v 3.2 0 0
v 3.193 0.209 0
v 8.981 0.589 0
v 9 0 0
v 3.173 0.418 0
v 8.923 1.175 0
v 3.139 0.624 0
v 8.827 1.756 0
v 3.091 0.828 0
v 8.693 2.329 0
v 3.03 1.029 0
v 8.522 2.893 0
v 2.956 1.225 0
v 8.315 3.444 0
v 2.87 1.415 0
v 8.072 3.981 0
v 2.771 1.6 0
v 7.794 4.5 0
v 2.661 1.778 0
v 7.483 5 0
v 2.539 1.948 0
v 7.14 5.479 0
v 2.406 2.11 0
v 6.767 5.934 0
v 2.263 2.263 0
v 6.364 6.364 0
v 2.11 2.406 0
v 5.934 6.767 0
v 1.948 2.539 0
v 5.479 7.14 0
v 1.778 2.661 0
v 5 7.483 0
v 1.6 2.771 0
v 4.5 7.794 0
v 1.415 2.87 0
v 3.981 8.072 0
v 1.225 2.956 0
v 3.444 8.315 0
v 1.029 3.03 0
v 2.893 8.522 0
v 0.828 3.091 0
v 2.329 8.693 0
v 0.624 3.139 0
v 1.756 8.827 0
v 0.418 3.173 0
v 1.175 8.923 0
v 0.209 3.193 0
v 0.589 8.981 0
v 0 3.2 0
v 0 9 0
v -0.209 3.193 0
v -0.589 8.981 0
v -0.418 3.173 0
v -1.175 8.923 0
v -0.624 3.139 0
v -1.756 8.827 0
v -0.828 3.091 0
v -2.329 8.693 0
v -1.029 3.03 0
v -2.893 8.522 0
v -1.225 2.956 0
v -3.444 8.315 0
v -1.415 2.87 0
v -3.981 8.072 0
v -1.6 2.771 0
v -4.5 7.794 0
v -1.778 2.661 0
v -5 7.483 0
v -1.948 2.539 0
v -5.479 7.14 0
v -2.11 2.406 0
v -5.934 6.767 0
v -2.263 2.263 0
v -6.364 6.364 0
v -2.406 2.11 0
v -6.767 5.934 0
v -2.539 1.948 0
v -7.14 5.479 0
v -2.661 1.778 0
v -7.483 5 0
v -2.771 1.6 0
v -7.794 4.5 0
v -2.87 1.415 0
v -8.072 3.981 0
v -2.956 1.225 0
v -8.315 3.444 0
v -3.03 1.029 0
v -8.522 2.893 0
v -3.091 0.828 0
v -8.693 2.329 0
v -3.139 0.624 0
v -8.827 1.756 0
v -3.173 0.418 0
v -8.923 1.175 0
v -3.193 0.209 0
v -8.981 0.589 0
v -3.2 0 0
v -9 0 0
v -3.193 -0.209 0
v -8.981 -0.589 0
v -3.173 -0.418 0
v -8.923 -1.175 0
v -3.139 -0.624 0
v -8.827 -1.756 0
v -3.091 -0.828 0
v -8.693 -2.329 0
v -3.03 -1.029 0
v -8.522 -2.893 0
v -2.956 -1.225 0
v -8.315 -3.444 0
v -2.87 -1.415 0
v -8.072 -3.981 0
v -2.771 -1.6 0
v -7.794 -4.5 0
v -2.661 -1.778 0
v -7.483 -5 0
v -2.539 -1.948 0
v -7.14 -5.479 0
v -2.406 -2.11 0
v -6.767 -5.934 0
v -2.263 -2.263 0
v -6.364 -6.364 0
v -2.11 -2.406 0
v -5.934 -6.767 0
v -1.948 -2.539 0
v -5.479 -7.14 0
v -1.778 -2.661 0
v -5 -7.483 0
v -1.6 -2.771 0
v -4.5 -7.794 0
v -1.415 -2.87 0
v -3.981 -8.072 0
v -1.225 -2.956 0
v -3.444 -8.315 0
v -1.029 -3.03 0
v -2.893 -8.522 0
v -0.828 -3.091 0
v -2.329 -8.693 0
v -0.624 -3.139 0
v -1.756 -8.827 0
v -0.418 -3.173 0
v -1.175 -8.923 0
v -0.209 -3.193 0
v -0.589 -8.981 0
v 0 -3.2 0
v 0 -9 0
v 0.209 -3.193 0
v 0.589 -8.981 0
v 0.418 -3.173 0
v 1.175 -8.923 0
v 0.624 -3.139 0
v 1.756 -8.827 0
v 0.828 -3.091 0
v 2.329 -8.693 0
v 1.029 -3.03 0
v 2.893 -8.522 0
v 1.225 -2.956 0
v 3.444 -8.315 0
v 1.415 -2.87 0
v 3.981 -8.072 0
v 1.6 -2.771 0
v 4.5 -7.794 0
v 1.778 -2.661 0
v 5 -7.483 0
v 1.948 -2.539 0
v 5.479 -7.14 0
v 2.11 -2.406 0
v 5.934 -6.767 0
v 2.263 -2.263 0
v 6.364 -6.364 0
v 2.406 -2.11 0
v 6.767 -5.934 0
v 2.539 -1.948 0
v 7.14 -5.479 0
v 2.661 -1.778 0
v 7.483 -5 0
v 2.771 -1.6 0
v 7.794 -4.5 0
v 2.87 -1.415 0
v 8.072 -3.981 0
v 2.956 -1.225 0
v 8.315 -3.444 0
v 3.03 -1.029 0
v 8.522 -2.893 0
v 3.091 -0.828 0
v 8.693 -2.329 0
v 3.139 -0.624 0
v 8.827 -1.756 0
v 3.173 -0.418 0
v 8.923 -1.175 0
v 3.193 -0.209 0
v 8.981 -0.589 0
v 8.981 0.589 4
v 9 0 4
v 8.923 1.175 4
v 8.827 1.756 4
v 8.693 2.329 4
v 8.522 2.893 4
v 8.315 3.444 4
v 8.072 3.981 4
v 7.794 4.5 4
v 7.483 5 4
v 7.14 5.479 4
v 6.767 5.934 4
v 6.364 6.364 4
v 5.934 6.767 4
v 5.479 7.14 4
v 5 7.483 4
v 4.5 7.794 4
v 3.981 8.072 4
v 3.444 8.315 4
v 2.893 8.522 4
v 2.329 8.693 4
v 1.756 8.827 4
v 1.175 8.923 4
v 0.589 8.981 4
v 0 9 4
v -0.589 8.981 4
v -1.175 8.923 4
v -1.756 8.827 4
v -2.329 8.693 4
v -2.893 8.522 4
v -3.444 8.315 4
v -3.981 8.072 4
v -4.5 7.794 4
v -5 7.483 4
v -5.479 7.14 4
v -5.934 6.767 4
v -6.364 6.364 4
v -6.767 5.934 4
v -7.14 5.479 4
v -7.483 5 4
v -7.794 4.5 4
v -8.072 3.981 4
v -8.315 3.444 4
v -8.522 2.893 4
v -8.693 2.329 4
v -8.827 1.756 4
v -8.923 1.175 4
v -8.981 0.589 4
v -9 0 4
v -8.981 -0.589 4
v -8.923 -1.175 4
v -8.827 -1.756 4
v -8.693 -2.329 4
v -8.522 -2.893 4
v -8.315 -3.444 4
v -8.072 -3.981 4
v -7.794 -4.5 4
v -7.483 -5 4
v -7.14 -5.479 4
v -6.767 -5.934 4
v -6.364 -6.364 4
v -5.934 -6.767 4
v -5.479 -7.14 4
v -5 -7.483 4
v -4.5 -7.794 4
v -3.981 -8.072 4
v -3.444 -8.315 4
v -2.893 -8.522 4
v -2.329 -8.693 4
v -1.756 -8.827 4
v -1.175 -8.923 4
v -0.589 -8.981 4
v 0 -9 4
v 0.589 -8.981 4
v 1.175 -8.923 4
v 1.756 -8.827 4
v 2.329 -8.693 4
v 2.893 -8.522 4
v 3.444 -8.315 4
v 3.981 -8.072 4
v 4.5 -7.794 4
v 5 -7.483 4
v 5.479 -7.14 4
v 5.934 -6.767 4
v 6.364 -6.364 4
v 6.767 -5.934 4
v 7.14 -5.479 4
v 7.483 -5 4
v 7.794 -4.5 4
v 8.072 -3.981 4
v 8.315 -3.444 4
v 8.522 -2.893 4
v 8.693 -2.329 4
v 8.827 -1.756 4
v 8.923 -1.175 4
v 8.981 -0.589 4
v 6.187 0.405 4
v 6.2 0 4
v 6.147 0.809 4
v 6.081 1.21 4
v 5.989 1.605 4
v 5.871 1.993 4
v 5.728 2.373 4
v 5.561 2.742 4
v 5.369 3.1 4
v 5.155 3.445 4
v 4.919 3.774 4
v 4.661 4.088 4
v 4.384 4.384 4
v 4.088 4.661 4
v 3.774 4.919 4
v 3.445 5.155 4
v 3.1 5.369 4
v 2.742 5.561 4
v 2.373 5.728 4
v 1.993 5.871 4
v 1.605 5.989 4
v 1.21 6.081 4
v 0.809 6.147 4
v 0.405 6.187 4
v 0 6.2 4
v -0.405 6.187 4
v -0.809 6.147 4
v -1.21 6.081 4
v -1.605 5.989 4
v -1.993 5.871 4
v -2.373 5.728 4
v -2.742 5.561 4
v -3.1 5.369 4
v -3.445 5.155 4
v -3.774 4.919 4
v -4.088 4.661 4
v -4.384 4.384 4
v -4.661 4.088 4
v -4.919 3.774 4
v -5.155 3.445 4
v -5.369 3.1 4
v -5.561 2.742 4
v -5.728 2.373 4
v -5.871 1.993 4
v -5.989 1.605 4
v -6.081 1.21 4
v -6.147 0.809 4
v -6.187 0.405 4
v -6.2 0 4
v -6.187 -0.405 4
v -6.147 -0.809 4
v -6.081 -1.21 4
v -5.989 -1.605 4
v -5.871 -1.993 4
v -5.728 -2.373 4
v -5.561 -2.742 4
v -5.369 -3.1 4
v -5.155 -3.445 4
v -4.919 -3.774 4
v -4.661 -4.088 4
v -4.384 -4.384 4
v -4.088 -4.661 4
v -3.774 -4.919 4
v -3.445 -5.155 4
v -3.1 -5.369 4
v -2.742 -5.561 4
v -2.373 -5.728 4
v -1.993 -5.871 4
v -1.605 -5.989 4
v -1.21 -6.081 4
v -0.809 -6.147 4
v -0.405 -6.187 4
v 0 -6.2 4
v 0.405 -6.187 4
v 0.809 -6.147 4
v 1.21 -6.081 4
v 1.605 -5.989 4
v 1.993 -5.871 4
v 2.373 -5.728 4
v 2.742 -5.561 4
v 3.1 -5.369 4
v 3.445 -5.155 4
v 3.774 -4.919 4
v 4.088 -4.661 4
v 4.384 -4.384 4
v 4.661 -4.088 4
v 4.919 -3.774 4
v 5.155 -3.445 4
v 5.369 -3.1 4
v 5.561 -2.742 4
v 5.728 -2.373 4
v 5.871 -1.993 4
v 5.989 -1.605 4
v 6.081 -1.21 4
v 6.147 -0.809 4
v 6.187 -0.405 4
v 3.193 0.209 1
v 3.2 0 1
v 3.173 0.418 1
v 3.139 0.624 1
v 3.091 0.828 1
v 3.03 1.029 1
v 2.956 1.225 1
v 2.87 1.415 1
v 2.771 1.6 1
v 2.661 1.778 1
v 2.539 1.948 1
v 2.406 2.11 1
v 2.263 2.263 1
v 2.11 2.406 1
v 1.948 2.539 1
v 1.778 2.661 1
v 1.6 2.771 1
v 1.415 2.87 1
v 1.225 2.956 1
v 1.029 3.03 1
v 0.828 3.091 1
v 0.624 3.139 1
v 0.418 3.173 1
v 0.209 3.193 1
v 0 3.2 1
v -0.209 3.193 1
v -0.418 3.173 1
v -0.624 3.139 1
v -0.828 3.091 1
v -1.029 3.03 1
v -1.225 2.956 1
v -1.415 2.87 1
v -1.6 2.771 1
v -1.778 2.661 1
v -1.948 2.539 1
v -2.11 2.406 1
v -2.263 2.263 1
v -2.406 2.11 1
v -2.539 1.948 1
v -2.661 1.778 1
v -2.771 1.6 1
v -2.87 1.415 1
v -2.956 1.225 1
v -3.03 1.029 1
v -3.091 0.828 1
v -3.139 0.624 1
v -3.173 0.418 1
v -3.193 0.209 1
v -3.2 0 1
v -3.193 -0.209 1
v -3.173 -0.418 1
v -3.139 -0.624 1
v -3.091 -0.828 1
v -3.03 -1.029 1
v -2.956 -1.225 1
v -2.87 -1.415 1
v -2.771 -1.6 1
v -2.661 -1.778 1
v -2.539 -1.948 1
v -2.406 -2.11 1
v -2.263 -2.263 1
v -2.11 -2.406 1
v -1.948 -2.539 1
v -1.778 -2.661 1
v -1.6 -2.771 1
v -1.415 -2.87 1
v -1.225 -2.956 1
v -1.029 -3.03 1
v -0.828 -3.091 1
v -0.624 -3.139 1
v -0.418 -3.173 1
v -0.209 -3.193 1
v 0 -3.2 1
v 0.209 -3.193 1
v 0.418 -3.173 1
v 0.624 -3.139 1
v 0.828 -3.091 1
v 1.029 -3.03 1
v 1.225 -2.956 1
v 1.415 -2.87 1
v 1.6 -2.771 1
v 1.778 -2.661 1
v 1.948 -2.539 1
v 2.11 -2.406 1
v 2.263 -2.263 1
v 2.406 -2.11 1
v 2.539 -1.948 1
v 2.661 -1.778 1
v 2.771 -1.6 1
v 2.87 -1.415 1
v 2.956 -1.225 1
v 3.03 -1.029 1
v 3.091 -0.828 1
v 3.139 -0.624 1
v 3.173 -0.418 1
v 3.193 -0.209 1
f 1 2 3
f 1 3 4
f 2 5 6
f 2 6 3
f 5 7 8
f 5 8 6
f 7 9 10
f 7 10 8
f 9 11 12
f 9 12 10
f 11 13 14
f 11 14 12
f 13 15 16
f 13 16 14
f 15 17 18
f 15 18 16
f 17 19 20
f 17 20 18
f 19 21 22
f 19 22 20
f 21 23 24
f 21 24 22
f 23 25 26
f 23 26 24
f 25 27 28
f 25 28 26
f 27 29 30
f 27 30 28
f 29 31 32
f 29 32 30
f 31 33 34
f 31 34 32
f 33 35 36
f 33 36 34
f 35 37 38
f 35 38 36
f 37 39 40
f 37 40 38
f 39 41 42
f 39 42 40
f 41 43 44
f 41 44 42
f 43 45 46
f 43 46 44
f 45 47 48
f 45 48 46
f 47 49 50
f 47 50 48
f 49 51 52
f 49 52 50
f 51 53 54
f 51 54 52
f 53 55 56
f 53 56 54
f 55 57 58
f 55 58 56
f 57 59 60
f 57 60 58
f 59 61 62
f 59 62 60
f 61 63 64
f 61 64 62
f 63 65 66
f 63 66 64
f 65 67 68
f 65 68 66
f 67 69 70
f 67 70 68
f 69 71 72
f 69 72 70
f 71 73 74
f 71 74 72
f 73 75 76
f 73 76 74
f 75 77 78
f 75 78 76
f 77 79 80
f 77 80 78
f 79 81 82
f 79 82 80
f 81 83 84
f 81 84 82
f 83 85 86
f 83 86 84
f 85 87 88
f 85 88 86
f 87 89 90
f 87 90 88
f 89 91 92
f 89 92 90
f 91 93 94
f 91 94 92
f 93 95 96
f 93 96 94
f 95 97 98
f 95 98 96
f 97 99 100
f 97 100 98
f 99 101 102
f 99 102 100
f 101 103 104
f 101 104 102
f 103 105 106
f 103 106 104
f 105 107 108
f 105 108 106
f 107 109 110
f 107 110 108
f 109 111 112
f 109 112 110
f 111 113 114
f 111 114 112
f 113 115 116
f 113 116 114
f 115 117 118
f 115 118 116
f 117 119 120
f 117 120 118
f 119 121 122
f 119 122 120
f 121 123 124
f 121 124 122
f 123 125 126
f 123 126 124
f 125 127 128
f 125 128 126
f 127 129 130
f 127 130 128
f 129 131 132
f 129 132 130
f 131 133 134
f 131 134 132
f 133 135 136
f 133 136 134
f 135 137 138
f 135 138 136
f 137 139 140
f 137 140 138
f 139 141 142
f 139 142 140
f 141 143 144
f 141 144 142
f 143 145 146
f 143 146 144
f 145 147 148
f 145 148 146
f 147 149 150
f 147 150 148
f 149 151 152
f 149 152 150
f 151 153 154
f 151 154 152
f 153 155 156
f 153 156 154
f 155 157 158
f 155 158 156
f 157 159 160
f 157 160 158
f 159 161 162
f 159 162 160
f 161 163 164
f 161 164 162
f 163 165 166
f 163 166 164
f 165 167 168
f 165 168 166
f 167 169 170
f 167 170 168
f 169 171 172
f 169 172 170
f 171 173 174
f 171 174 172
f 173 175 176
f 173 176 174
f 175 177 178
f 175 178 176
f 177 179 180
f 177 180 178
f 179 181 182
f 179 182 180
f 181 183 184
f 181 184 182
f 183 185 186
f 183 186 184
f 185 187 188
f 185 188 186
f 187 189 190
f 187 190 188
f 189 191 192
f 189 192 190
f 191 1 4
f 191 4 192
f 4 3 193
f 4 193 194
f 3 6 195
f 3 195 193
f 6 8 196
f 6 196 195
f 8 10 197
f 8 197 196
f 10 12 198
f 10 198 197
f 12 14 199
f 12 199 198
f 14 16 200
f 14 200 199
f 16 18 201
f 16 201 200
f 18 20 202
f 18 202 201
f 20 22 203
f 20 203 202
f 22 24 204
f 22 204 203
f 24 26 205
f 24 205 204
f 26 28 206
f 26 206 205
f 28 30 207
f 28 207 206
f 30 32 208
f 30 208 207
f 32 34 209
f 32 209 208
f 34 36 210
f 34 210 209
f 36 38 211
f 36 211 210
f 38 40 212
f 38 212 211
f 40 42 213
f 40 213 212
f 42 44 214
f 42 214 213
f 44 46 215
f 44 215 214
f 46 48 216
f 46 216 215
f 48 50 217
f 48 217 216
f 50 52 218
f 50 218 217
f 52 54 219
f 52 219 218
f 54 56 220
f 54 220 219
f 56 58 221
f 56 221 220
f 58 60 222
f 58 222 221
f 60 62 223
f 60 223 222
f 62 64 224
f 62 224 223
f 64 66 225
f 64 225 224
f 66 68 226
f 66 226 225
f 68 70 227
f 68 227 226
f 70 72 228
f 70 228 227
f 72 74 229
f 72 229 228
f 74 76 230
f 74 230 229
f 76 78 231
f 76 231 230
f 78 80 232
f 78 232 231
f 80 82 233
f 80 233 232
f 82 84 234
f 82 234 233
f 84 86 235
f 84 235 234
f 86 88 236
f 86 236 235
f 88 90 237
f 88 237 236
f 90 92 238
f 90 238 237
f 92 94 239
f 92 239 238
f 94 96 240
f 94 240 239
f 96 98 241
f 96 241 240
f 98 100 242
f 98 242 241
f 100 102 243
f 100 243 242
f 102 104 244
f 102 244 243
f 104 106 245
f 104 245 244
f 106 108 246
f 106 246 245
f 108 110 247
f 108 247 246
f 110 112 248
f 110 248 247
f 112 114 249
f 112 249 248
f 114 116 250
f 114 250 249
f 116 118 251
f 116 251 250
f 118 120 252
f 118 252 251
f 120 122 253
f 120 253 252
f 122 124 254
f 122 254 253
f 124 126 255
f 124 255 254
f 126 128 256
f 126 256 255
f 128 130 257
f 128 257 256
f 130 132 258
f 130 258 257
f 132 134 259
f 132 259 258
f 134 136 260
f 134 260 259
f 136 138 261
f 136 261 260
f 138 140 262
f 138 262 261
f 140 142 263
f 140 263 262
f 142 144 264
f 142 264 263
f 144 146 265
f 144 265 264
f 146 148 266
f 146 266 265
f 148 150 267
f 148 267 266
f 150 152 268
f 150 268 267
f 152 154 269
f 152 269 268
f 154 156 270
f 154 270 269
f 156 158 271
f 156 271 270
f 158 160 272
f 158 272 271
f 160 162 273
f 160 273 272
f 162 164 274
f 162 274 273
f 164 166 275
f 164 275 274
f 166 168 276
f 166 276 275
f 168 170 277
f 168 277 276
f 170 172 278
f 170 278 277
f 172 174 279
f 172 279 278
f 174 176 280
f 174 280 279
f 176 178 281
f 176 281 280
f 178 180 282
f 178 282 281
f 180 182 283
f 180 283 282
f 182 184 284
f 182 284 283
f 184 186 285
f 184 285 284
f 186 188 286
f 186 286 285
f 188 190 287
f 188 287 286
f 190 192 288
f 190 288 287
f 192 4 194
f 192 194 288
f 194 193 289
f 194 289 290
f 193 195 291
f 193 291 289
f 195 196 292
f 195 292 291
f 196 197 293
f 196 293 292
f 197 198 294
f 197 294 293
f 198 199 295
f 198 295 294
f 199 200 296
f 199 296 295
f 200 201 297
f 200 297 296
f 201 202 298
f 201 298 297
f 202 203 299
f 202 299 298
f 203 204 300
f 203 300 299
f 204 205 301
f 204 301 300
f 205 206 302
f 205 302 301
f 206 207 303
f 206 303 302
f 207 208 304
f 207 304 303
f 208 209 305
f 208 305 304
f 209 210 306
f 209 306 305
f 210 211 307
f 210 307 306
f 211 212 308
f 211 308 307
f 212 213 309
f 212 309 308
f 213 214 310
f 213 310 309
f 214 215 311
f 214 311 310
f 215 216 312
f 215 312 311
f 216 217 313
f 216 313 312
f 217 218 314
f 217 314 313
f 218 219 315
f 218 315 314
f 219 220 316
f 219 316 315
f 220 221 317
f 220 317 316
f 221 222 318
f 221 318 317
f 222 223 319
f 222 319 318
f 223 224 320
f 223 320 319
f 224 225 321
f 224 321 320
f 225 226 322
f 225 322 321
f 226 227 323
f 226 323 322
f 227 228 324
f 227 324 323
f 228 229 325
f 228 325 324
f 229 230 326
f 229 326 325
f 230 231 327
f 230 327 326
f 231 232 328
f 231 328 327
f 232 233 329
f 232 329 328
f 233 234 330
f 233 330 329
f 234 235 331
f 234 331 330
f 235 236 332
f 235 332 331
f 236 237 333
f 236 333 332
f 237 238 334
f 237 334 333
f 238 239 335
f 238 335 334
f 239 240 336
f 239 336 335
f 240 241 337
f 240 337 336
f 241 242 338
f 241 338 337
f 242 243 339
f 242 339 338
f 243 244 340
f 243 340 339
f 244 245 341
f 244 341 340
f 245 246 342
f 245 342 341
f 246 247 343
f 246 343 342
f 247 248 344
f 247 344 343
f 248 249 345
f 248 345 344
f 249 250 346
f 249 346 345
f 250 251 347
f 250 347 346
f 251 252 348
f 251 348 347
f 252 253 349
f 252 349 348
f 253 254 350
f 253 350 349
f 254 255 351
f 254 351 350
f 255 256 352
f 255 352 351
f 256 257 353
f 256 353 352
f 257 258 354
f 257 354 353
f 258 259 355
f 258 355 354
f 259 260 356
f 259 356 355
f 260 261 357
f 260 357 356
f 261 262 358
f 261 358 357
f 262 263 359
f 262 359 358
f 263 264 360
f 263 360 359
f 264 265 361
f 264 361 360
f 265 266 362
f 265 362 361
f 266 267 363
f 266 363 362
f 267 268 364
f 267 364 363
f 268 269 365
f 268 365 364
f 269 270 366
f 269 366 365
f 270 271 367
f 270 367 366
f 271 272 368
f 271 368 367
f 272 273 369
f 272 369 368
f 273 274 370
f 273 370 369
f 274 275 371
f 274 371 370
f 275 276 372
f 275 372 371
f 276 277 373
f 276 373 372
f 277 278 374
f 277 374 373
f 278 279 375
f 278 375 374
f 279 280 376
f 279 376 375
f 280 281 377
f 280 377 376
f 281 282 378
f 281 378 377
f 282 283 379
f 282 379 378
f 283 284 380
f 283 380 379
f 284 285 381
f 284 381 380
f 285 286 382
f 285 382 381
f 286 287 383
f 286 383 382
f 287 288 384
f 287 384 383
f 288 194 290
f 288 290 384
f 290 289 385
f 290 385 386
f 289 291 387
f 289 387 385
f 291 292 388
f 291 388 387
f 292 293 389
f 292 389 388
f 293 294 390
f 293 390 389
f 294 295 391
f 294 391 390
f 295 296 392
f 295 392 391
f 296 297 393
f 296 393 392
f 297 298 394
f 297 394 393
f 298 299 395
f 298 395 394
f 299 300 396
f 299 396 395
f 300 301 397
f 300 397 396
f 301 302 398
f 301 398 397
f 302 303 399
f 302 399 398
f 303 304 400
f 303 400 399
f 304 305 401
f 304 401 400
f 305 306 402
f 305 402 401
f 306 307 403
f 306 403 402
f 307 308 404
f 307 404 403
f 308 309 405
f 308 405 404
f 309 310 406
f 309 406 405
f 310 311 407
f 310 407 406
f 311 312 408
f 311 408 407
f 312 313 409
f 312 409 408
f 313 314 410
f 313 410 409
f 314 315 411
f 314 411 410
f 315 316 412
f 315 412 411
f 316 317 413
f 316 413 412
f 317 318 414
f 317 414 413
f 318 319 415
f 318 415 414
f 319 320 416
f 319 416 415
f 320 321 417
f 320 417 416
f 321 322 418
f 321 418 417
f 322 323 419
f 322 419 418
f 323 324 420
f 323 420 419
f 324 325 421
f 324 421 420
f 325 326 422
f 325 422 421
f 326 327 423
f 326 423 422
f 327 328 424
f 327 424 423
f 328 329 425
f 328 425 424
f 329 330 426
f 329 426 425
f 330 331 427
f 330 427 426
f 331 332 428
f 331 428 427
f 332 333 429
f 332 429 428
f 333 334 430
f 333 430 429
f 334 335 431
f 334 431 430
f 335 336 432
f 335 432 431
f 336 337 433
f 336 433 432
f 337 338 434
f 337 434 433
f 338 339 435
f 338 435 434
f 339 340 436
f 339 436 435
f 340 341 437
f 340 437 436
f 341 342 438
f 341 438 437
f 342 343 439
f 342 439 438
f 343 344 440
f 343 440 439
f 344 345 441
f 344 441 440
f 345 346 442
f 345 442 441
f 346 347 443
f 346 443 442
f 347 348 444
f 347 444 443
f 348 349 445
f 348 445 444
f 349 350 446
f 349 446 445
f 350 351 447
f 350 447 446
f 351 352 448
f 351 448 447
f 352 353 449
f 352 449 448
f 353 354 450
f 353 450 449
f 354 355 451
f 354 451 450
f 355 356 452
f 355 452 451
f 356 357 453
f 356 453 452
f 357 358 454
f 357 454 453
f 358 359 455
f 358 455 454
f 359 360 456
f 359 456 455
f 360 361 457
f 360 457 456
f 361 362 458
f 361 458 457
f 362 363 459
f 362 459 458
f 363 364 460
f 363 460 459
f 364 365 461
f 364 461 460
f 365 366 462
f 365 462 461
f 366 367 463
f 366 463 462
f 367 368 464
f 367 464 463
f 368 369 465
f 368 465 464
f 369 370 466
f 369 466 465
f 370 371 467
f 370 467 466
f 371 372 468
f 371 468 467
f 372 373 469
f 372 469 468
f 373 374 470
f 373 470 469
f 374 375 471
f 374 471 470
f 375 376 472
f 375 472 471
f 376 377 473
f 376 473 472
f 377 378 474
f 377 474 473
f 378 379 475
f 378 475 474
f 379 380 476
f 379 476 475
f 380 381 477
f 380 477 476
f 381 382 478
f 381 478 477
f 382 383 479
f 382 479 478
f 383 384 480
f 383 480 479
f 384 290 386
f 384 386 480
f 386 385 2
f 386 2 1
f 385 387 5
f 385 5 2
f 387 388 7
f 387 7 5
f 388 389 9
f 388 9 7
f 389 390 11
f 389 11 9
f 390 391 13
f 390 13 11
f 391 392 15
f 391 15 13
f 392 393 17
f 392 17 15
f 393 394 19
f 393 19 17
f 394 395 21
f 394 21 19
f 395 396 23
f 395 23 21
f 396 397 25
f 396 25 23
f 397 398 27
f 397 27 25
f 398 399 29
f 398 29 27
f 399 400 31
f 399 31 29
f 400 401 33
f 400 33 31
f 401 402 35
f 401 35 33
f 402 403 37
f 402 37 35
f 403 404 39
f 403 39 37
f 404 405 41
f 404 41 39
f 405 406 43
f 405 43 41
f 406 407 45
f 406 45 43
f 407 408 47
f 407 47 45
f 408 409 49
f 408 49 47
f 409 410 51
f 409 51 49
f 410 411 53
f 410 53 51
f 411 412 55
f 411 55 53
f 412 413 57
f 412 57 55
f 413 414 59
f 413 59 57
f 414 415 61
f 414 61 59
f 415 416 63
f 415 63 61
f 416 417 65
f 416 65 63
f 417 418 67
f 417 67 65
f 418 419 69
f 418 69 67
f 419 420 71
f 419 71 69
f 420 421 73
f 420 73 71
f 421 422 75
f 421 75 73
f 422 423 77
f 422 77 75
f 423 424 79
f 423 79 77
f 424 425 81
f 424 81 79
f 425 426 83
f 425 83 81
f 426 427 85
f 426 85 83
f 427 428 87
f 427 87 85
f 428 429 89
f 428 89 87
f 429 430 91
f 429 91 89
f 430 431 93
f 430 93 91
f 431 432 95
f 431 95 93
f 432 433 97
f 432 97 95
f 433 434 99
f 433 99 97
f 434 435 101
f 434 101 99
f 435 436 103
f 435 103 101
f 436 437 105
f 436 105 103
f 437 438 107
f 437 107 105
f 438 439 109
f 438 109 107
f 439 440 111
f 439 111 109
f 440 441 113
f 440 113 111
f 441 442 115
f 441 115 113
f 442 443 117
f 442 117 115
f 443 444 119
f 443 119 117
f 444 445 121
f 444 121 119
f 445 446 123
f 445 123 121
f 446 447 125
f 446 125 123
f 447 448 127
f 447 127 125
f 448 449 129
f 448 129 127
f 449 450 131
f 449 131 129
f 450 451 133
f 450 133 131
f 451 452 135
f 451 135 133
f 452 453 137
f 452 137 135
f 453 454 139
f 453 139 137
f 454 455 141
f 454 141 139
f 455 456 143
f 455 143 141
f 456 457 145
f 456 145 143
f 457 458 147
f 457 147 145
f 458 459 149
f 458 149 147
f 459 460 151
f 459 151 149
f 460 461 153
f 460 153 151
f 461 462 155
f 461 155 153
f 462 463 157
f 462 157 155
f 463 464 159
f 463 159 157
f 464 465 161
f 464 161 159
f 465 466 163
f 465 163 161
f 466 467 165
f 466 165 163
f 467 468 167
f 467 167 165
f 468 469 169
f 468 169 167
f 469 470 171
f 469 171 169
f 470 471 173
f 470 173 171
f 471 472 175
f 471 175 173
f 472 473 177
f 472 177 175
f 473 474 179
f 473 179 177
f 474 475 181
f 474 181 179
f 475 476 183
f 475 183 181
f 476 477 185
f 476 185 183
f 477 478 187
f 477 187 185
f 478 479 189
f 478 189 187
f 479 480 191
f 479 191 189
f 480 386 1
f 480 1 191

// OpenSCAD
// Original MechIntel educational model. CC0-1.0. Units: mm.
// Not a standardized or load-rated component.
$fn=96;
// Section points: [radius, height], mm. Edit to change the profile.
section=[[3.2, 0], [9, 0], [9, 4], [6.2, 4], [3.2, 1]];
rotate_extrude($fn=96) polygon(points=section);
